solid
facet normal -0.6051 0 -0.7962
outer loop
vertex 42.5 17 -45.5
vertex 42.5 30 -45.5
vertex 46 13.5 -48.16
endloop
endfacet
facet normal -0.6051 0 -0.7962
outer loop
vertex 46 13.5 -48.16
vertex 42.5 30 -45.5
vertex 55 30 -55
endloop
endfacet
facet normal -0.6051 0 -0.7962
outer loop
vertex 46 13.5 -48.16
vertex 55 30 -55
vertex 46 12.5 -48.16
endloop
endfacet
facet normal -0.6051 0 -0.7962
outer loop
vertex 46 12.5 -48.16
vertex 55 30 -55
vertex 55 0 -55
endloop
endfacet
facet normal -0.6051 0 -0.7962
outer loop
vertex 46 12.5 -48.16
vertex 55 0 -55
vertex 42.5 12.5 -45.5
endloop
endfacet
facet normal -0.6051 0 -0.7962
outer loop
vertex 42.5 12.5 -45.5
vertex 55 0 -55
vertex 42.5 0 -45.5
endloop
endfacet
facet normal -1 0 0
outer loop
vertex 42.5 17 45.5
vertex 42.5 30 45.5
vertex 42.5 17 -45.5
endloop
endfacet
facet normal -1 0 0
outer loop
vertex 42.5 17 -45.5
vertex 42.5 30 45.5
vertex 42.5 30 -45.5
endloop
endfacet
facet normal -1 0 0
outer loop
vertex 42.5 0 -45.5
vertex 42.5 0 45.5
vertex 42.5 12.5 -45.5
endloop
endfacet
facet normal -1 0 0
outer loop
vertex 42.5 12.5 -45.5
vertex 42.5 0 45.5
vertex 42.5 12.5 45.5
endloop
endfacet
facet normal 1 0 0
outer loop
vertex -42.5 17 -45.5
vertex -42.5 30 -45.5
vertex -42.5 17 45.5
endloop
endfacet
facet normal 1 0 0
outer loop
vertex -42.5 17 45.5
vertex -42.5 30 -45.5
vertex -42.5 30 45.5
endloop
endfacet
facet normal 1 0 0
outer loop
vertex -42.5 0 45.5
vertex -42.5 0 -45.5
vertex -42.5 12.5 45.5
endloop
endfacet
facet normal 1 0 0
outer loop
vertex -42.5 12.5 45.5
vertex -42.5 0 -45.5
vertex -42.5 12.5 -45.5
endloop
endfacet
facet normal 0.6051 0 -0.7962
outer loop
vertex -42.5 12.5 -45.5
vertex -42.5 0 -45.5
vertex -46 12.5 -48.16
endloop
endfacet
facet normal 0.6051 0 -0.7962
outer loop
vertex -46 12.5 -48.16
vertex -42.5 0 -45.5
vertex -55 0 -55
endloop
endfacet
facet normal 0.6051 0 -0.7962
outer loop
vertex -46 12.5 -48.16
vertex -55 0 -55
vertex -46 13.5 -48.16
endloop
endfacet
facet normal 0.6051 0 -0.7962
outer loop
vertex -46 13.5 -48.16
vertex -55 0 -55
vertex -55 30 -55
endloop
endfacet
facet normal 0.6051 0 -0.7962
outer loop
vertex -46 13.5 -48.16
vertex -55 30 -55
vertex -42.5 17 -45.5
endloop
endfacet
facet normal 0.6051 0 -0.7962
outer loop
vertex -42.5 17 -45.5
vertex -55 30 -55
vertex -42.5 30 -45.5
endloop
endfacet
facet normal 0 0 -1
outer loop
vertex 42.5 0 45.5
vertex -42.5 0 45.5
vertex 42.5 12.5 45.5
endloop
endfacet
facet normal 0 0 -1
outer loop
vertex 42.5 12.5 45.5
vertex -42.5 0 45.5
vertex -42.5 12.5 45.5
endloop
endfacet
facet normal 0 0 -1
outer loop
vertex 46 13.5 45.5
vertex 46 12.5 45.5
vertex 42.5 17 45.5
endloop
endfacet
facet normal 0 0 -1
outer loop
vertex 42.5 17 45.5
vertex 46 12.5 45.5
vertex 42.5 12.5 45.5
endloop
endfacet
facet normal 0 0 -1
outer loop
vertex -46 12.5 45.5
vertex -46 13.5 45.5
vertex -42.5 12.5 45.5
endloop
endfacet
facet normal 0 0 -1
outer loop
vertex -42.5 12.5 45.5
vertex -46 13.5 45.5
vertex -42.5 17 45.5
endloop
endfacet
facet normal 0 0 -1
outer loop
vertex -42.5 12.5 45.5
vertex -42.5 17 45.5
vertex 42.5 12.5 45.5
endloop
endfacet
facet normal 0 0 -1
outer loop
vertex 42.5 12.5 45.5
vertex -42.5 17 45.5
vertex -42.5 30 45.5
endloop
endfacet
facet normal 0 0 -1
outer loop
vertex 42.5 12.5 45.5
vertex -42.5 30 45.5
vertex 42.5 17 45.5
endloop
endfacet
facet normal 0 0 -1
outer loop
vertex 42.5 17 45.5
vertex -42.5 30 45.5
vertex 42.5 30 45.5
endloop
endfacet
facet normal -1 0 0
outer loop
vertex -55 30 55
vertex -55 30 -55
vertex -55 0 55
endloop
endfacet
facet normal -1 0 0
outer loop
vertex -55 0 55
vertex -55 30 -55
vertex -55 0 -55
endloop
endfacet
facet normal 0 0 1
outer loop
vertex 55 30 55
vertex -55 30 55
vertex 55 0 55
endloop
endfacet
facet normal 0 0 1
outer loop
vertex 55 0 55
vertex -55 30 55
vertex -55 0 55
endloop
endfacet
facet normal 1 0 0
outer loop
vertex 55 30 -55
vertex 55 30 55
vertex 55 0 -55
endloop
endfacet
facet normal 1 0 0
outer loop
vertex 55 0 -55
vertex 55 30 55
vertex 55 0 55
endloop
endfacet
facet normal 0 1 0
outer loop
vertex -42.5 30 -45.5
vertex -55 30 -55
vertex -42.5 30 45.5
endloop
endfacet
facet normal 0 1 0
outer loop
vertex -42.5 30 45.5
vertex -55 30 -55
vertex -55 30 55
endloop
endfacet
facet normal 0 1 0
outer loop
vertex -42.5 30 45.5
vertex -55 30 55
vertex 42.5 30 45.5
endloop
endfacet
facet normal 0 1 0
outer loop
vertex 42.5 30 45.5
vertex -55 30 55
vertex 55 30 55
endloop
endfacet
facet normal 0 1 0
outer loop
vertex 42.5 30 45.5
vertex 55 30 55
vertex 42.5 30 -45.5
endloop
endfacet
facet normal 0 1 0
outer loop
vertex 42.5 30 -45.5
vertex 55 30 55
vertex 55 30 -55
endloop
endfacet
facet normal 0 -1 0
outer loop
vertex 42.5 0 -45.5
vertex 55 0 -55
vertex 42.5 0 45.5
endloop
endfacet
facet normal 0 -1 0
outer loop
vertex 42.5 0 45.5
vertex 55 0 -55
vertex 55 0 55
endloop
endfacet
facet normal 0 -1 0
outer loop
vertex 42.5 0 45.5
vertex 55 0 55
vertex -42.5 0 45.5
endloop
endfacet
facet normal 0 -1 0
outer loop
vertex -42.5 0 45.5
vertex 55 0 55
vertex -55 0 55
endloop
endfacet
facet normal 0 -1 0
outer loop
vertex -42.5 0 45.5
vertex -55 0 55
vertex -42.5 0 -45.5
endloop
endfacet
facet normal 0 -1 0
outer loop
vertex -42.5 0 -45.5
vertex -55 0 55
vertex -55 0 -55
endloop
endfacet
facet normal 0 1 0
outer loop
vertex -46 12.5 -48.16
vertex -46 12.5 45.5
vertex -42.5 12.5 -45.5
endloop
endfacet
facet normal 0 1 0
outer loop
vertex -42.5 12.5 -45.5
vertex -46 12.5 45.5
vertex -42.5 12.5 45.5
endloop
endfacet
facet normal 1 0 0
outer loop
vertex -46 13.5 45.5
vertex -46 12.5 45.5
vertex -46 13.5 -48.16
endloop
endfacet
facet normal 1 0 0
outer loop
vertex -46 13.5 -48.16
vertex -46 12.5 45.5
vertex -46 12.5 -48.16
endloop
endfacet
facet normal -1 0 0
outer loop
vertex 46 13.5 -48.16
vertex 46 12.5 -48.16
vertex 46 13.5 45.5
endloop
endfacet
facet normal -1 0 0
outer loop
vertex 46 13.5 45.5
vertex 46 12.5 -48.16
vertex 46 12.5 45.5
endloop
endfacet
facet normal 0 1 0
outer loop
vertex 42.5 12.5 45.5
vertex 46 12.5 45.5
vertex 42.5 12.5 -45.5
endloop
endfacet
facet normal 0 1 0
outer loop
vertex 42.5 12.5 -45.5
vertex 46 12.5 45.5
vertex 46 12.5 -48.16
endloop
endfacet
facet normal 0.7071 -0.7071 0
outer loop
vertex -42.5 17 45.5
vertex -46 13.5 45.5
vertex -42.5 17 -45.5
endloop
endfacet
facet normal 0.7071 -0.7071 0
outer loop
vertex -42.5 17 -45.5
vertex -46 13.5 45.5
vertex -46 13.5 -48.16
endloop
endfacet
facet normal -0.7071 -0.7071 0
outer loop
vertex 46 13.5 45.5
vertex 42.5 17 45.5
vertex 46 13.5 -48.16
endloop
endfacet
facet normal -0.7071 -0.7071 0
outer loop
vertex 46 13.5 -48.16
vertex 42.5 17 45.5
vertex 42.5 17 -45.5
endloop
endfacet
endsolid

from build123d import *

# Parameters (mm, degrees)
BOSS_EXTRUDE1_DEPTH = 30
SKETCH2_W           = 92
SKETCH2_H           = 5
CUT_EXTRUDE1_DEPTH  = 119.428248319
CHAMFER1_SIZE       = 4


with BuildPart() as part:
    # Sketch1 → Boss-Extrude1 (new body)
    with BuildSketch(Plane(origin=(0, 0, 0), x_dir=(1, 0, 0), z_dir=(0, 1, 0))):
        Polygon((-55, 55), (-42.5, 45.5), (-42.5, -45.5), (42.5, -45.5), (42.5, 45.5), (55, 55), (55, -55), (-55, -55), align=None)
    extrude(amount=BOSS_EXTRUDE1_DEPTH)

    # Sketch2 → Cut-Extrude1 (cut, through all)
    with BuildSketch(Plane(origin=(0, 0, 45.5), x_dir=(-1, 0, 0), z_dir=(0, 0, -1))):
        with Locations((0, 15)):
            Rectangle(SKETCH2_W, SKETCH2_H)
    extrude(amount=CUT_EXTRUDE1_DEPTH, mode=Mode.SUBTRACT)

    # Chamfer1
    # the kernel refuses this chamfer: 4 mm, written as the material it adds along each edge
    with BuildSketch(Plane(origin=(-46, 17.5, 55.786731952), x_dir=(-0.027495876610585623, -0.9996219169112968, 0), z_dir=(0, 0, -1))) as chamfer1_piece_1_section:
        Polygon((CHAMFER1_SIZE * 0.999621916911, -CHAMFER1_SIZE * 0.0274958766106), (-CHAMFER1_SIZE * 0.0274958766106, -CHAMFER1_SIZE * 0.999621916911), (0, 0), align=None)
    chamfer1_piece_1 = extrude(amount=114.233463904, mode=Mode.PRIVATE)
    chamfer1_piece_1 = split(chamfer1_piece_1, bisect_by=Plane(origin=(-22.386376136, 16.144806412, -30.213645864), z_dir=(-0.6050832675335592, 0, 0.7961621941231015)), keep=Keep.TOP, mode=Mode.PRIVATE)
    chamfer1_piece_1 = split(chamfer1_piece_1, bisect_by=Plane(origin=(-42.5, 16.144806412, -0.839947127), z_dir=(-1, 0, 0)), keep=Keep.TOP, mode=Mode.PRIVATE)
    chamfer1_piece_1 = split(chamfer1_piece_1, bisect_by=Plane(origin=(-44.710387176, 16.144806412, 55), z_dir=(0, 0, -1)), keep=Keep.TOP, mode=Mode.PRIVATE)
    add(chamfer1_piece_1)
    with BuildSketch(Plane(origin=(46, 17.5, 55.786731952), x_dir=(-0.9996219169112968, 0.02749587661058651, 0), z_dir=(0, 0, -1))) as chamfer1_piece_2_section:
        Polygon((CHAMFER1_SIZE * 0.999621916911, -CHAMFER1_SIZE * 0.0274958766106), (-CHAMFER1_SIZE * 0.0274958766106, -CHAMFER1_SIZE * 0.999621916911), (0, 0), align=None)
    chamfer1_piece_2 = extrude(amount=114.233463904, mode=Mode.PRIVATE)
    chamfer1_piece_2 = split(chamfer1_piece_2, bisect_by=Plane(origin=(22.386376136, 16.144806412, -30.213645864), z_dir=(0.6050832675335583, 0, 0.7961621941231022)), keep=Keep.TOP, mode=Mode.PRIVATE)
    chamfer1_piece_2 = split(chamfer1_piece_2, bisect_by=Plane(origin=(44.710387176, 16.144806412, 55), z_dir=(0, 0, -1)), keep=Keep.TOP, mode=Mode.PRIVATE)
    chamfer1_piece_2 = split(chamfer1_piece_2, bisect_by=Plane(origin=(42.5, 16.144806412, -0.839947127), z_dir=(1, 0, 0)), keep=Keep.TOP, mode=Mode.PRIVATE)
    add(chamfer1_piece_2)


solid = part.part
